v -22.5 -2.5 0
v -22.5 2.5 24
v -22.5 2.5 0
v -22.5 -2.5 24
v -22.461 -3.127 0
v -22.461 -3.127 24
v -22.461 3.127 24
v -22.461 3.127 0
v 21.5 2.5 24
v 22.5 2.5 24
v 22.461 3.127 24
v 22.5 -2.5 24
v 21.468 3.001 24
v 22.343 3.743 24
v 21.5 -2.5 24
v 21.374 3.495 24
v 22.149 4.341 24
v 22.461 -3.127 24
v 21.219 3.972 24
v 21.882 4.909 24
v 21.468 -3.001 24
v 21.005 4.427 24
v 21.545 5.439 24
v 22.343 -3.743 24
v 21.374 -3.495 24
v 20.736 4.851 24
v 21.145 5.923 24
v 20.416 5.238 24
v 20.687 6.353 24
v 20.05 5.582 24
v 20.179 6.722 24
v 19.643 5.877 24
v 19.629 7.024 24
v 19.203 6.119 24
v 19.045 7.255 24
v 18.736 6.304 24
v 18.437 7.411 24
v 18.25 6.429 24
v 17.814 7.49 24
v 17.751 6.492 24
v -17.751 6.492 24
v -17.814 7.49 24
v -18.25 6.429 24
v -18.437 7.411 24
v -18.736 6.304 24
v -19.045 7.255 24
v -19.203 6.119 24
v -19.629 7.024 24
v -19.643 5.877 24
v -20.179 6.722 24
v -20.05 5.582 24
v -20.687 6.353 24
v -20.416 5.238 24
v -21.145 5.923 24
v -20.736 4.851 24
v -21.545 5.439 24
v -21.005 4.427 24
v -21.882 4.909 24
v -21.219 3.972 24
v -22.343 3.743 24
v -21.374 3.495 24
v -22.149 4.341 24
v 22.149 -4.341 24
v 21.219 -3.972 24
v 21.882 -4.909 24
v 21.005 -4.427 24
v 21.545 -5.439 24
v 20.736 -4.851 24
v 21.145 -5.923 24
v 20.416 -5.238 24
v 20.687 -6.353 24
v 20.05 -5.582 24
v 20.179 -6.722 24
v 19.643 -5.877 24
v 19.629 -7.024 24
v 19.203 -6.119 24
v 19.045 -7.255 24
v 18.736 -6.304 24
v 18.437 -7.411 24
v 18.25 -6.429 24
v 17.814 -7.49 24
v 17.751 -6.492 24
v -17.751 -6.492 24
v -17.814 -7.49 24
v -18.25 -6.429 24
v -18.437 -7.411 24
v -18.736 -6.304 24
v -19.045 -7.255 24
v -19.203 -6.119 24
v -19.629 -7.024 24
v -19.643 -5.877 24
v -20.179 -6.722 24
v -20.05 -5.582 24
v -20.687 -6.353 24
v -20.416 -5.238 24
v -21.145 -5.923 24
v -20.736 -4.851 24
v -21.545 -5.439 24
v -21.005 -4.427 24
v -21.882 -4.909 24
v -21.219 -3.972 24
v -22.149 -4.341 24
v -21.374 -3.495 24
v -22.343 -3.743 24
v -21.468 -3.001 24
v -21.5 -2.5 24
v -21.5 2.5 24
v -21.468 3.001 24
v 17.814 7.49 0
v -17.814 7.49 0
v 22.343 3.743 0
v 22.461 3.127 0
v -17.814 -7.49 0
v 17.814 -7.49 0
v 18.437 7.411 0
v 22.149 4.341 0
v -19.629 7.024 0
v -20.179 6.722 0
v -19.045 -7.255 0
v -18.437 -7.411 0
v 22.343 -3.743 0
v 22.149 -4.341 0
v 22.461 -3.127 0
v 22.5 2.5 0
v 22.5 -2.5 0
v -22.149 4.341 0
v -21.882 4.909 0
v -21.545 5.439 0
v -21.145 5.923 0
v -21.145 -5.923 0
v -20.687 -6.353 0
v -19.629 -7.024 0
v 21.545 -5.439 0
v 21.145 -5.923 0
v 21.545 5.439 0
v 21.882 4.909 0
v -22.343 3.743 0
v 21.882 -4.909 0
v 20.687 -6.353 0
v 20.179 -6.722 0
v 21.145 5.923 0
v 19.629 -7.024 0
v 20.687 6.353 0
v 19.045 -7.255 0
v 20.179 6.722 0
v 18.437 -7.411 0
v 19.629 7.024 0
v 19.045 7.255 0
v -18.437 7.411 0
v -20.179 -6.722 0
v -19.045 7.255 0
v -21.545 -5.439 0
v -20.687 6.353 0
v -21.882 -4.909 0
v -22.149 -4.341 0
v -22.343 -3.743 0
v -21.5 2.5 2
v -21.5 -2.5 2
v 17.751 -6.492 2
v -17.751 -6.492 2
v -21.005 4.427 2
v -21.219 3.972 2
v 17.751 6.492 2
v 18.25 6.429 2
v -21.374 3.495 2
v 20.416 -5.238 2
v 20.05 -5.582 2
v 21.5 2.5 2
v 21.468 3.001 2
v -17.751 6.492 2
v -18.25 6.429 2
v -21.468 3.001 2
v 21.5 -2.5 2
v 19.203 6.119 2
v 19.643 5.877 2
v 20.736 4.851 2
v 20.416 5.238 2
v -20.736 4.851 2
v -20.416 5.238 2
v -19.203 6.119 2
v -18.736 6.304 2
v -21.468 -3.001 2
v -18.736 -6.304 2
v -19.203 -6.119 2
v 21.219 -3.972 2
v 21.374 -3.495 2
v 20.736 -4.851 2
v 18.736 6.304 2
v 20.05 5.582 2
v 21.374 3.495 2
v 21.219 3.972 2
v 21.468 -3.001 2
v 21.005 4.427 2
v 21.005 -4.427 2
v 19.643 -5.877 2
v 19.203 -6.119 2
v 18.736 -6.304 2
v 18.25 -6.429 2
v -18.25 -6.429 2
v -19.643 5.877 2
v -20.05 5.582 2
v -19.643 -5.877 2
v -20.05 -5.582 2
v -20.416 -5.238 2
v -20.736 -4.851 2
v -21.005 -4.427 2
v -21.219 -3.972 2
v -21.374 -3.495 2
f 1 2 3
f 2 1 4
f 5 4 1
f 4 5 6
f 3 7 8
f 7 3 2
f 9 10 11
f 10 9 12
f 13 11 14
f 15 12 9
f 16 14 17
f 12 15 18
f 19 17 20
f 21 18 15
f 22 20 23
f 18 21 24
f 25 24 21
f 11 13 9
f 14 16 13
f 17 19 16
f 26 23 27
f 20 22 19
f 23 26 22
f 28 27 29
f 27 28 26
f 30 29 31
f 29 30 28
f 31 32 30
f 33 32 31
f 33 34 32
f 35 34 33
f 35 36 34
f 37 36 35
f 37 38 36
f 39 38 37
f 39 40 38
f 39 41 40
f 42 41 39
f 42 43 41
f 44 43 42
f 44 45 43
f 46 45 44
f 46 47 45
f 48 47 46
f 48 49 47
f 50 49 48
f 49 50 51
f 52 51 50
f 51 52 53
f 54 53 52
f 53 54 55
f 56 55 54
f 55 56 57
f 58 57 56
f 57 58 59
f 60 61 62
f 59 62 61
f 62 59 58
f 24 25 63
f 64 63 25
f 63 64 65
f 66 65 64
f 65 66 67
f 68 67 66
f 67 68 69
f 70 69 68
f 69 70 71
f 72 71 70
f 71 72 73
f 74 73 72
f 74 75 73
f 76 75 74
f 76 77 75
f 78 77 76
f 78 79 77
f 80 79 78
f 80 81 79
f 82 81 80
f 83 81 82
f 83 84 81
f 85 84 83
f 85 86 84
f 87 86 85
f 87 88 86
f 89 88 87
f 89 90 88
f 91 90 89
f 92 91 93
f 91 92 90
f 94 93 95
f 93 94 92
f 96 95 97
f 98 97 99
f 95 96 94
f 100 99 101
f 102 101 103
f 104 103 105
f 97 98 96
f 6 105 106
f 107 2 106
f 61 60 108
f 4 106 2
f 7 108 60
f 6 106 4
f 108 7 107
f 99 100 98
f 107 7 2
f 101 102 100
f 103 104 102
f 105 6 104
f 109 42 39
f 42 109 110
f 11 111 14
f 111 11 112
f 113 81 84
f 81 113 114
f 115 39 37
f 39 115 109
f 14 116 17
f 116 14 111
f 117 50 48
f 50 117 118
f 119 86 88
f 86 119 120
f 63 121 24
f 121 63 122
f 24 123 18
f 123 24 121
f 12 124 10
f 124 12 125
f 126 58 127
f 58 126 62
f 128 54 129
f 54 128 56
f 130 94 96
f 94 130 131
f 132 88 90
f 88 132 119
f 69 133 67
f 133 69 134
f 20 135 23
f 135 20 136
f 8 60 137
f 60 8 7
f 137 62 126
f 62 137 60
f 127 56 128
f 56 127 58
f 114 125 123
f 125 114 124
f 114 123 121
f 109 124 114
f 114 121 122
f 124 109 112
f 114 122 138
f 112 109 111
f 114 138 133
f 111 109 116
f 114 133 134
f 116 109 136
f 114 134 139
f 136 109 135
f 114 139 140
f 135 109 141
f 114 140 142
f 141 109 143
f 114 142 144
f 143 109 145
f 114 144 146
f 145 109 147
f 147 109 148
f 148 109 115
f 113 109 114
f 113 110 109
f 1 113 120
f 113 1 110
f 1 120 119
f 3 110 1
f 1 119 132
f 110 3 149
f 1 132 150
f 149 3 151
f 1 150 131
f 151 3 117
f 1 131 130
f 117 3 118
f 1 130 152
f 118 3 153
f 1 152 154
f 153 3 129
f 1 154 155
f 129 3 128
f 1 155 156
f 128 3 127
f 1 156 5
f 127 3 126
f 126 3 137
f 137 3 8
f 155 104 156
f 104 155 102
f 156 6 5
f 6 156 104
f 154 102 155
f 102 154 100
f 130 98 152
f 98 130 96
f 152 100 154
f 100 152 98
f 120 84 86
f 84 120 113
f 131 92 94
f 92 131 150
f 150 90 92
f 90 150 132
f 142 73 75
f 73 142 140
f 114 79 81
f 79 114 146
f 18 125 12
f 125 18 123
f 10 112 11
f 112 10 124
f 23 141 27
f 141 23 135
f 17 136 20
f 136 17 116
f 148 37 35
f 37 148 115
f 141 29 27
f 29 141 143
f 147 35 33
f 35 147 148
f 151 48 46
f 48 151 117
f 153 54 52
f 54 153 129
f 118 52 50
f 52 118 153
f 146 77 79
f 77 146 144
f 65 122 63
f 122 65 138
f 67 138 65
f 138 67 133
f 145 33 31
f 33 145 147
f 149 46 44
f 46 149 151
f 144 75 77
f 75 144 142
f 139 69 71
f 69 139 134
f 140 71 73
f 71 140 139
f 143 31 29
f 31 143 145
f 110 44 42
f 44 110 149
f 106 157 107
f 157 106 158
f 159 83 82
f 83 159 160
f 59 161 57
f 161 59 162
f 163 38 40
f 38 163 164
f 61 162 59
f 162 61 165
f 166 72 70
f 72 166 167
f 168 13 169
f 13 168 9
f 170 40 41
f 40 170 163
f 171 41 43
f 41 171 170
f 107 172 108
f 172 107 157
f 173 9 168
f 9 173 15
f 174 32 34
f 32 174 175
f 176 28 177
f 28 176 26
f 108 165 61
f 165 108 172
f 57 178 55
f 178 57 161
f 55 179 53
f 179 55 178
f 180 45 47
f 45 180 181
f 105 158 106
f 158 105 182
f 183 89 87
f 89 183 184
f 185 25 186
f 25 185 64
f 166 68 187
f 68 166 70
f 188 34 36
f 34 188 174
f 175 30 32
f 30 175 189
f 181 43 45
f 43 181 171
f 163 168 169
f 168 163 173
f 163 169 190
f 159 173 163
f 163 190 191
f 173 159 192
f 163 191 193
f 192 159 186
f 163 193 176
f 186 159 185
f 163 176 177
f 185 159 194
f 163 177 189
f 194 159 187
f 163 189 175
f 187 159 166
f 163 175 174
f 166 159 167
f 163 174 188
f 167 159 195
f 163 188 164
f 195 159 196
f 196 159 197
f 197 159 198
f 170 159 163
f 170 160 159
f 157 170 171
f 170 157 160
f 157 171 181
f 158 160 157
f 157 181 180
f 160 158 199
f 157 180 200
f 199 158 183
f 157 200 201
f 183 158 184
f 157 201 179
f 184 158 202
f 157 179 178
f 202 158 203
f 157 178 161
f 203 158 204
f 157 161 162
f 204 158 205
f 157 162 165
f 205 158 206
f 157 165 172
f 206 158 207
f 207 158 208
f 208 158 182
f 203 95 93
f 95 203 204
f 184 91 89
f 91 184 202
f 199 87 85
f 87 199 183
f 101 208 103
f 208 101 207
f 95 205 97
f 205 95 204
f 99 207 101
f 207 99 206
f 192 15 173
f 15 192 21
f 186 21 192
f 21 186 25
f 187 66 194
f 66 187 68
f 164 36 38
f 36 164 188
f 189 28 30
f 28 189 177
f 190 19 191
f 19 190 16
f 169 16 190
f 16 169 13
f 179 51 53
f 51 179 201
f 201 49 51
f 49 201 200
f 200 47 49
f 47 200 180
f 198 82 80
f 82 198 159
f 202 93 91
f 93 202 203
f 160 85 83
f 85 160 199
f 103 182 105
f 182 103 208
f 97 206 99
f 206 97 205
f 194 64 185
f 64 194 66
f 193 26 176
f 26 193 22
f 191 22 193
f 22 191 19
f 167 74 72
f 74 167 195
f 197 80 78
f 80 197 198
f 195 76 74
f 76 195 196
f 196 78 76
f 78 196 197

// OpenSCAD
$fn = 50;


difference() {
	union() {
		hull() {
			translate(v = [-17.5000000000, 2.5000000000, 0]) {
				cylinder(h = 24, r = 5);
			}
			translate(v = [17.5000000000, 2.5000000000, 0]) {
				cylinder(h = 24, r = 5);
			}
			translate(v = [-17.5000000000, -2.5000000000, 0]) {
				cylinder(h = 24, r = 5);
			}
			translate(v = [17.5000000000, -2.5000000000, 0]) {
				cylinder(h = 24, r = 5);
			}
		}
	}
	union() {
		translate(v = [0, 0, 2]) {
			hull() {
				translate(v = [-17.5000000000, 2.5000000000, 0]) {
					cylinder(h = 22, r = 4);
				}
				translate(v = [17.5000000000, 2.5000000000, 0]) {
					cylinder(h = 22, r = 4);
				}
				translate(v = [-17.5000000000, -2.5000000000, 0]) {
					cylinder(h = 22, r = 4);
				}
				translate(v = [17.5000000000, -2.5000000000, 0]) {
					cylinder(h = 22, r = 4);
				}
			}
		}
	}
}
